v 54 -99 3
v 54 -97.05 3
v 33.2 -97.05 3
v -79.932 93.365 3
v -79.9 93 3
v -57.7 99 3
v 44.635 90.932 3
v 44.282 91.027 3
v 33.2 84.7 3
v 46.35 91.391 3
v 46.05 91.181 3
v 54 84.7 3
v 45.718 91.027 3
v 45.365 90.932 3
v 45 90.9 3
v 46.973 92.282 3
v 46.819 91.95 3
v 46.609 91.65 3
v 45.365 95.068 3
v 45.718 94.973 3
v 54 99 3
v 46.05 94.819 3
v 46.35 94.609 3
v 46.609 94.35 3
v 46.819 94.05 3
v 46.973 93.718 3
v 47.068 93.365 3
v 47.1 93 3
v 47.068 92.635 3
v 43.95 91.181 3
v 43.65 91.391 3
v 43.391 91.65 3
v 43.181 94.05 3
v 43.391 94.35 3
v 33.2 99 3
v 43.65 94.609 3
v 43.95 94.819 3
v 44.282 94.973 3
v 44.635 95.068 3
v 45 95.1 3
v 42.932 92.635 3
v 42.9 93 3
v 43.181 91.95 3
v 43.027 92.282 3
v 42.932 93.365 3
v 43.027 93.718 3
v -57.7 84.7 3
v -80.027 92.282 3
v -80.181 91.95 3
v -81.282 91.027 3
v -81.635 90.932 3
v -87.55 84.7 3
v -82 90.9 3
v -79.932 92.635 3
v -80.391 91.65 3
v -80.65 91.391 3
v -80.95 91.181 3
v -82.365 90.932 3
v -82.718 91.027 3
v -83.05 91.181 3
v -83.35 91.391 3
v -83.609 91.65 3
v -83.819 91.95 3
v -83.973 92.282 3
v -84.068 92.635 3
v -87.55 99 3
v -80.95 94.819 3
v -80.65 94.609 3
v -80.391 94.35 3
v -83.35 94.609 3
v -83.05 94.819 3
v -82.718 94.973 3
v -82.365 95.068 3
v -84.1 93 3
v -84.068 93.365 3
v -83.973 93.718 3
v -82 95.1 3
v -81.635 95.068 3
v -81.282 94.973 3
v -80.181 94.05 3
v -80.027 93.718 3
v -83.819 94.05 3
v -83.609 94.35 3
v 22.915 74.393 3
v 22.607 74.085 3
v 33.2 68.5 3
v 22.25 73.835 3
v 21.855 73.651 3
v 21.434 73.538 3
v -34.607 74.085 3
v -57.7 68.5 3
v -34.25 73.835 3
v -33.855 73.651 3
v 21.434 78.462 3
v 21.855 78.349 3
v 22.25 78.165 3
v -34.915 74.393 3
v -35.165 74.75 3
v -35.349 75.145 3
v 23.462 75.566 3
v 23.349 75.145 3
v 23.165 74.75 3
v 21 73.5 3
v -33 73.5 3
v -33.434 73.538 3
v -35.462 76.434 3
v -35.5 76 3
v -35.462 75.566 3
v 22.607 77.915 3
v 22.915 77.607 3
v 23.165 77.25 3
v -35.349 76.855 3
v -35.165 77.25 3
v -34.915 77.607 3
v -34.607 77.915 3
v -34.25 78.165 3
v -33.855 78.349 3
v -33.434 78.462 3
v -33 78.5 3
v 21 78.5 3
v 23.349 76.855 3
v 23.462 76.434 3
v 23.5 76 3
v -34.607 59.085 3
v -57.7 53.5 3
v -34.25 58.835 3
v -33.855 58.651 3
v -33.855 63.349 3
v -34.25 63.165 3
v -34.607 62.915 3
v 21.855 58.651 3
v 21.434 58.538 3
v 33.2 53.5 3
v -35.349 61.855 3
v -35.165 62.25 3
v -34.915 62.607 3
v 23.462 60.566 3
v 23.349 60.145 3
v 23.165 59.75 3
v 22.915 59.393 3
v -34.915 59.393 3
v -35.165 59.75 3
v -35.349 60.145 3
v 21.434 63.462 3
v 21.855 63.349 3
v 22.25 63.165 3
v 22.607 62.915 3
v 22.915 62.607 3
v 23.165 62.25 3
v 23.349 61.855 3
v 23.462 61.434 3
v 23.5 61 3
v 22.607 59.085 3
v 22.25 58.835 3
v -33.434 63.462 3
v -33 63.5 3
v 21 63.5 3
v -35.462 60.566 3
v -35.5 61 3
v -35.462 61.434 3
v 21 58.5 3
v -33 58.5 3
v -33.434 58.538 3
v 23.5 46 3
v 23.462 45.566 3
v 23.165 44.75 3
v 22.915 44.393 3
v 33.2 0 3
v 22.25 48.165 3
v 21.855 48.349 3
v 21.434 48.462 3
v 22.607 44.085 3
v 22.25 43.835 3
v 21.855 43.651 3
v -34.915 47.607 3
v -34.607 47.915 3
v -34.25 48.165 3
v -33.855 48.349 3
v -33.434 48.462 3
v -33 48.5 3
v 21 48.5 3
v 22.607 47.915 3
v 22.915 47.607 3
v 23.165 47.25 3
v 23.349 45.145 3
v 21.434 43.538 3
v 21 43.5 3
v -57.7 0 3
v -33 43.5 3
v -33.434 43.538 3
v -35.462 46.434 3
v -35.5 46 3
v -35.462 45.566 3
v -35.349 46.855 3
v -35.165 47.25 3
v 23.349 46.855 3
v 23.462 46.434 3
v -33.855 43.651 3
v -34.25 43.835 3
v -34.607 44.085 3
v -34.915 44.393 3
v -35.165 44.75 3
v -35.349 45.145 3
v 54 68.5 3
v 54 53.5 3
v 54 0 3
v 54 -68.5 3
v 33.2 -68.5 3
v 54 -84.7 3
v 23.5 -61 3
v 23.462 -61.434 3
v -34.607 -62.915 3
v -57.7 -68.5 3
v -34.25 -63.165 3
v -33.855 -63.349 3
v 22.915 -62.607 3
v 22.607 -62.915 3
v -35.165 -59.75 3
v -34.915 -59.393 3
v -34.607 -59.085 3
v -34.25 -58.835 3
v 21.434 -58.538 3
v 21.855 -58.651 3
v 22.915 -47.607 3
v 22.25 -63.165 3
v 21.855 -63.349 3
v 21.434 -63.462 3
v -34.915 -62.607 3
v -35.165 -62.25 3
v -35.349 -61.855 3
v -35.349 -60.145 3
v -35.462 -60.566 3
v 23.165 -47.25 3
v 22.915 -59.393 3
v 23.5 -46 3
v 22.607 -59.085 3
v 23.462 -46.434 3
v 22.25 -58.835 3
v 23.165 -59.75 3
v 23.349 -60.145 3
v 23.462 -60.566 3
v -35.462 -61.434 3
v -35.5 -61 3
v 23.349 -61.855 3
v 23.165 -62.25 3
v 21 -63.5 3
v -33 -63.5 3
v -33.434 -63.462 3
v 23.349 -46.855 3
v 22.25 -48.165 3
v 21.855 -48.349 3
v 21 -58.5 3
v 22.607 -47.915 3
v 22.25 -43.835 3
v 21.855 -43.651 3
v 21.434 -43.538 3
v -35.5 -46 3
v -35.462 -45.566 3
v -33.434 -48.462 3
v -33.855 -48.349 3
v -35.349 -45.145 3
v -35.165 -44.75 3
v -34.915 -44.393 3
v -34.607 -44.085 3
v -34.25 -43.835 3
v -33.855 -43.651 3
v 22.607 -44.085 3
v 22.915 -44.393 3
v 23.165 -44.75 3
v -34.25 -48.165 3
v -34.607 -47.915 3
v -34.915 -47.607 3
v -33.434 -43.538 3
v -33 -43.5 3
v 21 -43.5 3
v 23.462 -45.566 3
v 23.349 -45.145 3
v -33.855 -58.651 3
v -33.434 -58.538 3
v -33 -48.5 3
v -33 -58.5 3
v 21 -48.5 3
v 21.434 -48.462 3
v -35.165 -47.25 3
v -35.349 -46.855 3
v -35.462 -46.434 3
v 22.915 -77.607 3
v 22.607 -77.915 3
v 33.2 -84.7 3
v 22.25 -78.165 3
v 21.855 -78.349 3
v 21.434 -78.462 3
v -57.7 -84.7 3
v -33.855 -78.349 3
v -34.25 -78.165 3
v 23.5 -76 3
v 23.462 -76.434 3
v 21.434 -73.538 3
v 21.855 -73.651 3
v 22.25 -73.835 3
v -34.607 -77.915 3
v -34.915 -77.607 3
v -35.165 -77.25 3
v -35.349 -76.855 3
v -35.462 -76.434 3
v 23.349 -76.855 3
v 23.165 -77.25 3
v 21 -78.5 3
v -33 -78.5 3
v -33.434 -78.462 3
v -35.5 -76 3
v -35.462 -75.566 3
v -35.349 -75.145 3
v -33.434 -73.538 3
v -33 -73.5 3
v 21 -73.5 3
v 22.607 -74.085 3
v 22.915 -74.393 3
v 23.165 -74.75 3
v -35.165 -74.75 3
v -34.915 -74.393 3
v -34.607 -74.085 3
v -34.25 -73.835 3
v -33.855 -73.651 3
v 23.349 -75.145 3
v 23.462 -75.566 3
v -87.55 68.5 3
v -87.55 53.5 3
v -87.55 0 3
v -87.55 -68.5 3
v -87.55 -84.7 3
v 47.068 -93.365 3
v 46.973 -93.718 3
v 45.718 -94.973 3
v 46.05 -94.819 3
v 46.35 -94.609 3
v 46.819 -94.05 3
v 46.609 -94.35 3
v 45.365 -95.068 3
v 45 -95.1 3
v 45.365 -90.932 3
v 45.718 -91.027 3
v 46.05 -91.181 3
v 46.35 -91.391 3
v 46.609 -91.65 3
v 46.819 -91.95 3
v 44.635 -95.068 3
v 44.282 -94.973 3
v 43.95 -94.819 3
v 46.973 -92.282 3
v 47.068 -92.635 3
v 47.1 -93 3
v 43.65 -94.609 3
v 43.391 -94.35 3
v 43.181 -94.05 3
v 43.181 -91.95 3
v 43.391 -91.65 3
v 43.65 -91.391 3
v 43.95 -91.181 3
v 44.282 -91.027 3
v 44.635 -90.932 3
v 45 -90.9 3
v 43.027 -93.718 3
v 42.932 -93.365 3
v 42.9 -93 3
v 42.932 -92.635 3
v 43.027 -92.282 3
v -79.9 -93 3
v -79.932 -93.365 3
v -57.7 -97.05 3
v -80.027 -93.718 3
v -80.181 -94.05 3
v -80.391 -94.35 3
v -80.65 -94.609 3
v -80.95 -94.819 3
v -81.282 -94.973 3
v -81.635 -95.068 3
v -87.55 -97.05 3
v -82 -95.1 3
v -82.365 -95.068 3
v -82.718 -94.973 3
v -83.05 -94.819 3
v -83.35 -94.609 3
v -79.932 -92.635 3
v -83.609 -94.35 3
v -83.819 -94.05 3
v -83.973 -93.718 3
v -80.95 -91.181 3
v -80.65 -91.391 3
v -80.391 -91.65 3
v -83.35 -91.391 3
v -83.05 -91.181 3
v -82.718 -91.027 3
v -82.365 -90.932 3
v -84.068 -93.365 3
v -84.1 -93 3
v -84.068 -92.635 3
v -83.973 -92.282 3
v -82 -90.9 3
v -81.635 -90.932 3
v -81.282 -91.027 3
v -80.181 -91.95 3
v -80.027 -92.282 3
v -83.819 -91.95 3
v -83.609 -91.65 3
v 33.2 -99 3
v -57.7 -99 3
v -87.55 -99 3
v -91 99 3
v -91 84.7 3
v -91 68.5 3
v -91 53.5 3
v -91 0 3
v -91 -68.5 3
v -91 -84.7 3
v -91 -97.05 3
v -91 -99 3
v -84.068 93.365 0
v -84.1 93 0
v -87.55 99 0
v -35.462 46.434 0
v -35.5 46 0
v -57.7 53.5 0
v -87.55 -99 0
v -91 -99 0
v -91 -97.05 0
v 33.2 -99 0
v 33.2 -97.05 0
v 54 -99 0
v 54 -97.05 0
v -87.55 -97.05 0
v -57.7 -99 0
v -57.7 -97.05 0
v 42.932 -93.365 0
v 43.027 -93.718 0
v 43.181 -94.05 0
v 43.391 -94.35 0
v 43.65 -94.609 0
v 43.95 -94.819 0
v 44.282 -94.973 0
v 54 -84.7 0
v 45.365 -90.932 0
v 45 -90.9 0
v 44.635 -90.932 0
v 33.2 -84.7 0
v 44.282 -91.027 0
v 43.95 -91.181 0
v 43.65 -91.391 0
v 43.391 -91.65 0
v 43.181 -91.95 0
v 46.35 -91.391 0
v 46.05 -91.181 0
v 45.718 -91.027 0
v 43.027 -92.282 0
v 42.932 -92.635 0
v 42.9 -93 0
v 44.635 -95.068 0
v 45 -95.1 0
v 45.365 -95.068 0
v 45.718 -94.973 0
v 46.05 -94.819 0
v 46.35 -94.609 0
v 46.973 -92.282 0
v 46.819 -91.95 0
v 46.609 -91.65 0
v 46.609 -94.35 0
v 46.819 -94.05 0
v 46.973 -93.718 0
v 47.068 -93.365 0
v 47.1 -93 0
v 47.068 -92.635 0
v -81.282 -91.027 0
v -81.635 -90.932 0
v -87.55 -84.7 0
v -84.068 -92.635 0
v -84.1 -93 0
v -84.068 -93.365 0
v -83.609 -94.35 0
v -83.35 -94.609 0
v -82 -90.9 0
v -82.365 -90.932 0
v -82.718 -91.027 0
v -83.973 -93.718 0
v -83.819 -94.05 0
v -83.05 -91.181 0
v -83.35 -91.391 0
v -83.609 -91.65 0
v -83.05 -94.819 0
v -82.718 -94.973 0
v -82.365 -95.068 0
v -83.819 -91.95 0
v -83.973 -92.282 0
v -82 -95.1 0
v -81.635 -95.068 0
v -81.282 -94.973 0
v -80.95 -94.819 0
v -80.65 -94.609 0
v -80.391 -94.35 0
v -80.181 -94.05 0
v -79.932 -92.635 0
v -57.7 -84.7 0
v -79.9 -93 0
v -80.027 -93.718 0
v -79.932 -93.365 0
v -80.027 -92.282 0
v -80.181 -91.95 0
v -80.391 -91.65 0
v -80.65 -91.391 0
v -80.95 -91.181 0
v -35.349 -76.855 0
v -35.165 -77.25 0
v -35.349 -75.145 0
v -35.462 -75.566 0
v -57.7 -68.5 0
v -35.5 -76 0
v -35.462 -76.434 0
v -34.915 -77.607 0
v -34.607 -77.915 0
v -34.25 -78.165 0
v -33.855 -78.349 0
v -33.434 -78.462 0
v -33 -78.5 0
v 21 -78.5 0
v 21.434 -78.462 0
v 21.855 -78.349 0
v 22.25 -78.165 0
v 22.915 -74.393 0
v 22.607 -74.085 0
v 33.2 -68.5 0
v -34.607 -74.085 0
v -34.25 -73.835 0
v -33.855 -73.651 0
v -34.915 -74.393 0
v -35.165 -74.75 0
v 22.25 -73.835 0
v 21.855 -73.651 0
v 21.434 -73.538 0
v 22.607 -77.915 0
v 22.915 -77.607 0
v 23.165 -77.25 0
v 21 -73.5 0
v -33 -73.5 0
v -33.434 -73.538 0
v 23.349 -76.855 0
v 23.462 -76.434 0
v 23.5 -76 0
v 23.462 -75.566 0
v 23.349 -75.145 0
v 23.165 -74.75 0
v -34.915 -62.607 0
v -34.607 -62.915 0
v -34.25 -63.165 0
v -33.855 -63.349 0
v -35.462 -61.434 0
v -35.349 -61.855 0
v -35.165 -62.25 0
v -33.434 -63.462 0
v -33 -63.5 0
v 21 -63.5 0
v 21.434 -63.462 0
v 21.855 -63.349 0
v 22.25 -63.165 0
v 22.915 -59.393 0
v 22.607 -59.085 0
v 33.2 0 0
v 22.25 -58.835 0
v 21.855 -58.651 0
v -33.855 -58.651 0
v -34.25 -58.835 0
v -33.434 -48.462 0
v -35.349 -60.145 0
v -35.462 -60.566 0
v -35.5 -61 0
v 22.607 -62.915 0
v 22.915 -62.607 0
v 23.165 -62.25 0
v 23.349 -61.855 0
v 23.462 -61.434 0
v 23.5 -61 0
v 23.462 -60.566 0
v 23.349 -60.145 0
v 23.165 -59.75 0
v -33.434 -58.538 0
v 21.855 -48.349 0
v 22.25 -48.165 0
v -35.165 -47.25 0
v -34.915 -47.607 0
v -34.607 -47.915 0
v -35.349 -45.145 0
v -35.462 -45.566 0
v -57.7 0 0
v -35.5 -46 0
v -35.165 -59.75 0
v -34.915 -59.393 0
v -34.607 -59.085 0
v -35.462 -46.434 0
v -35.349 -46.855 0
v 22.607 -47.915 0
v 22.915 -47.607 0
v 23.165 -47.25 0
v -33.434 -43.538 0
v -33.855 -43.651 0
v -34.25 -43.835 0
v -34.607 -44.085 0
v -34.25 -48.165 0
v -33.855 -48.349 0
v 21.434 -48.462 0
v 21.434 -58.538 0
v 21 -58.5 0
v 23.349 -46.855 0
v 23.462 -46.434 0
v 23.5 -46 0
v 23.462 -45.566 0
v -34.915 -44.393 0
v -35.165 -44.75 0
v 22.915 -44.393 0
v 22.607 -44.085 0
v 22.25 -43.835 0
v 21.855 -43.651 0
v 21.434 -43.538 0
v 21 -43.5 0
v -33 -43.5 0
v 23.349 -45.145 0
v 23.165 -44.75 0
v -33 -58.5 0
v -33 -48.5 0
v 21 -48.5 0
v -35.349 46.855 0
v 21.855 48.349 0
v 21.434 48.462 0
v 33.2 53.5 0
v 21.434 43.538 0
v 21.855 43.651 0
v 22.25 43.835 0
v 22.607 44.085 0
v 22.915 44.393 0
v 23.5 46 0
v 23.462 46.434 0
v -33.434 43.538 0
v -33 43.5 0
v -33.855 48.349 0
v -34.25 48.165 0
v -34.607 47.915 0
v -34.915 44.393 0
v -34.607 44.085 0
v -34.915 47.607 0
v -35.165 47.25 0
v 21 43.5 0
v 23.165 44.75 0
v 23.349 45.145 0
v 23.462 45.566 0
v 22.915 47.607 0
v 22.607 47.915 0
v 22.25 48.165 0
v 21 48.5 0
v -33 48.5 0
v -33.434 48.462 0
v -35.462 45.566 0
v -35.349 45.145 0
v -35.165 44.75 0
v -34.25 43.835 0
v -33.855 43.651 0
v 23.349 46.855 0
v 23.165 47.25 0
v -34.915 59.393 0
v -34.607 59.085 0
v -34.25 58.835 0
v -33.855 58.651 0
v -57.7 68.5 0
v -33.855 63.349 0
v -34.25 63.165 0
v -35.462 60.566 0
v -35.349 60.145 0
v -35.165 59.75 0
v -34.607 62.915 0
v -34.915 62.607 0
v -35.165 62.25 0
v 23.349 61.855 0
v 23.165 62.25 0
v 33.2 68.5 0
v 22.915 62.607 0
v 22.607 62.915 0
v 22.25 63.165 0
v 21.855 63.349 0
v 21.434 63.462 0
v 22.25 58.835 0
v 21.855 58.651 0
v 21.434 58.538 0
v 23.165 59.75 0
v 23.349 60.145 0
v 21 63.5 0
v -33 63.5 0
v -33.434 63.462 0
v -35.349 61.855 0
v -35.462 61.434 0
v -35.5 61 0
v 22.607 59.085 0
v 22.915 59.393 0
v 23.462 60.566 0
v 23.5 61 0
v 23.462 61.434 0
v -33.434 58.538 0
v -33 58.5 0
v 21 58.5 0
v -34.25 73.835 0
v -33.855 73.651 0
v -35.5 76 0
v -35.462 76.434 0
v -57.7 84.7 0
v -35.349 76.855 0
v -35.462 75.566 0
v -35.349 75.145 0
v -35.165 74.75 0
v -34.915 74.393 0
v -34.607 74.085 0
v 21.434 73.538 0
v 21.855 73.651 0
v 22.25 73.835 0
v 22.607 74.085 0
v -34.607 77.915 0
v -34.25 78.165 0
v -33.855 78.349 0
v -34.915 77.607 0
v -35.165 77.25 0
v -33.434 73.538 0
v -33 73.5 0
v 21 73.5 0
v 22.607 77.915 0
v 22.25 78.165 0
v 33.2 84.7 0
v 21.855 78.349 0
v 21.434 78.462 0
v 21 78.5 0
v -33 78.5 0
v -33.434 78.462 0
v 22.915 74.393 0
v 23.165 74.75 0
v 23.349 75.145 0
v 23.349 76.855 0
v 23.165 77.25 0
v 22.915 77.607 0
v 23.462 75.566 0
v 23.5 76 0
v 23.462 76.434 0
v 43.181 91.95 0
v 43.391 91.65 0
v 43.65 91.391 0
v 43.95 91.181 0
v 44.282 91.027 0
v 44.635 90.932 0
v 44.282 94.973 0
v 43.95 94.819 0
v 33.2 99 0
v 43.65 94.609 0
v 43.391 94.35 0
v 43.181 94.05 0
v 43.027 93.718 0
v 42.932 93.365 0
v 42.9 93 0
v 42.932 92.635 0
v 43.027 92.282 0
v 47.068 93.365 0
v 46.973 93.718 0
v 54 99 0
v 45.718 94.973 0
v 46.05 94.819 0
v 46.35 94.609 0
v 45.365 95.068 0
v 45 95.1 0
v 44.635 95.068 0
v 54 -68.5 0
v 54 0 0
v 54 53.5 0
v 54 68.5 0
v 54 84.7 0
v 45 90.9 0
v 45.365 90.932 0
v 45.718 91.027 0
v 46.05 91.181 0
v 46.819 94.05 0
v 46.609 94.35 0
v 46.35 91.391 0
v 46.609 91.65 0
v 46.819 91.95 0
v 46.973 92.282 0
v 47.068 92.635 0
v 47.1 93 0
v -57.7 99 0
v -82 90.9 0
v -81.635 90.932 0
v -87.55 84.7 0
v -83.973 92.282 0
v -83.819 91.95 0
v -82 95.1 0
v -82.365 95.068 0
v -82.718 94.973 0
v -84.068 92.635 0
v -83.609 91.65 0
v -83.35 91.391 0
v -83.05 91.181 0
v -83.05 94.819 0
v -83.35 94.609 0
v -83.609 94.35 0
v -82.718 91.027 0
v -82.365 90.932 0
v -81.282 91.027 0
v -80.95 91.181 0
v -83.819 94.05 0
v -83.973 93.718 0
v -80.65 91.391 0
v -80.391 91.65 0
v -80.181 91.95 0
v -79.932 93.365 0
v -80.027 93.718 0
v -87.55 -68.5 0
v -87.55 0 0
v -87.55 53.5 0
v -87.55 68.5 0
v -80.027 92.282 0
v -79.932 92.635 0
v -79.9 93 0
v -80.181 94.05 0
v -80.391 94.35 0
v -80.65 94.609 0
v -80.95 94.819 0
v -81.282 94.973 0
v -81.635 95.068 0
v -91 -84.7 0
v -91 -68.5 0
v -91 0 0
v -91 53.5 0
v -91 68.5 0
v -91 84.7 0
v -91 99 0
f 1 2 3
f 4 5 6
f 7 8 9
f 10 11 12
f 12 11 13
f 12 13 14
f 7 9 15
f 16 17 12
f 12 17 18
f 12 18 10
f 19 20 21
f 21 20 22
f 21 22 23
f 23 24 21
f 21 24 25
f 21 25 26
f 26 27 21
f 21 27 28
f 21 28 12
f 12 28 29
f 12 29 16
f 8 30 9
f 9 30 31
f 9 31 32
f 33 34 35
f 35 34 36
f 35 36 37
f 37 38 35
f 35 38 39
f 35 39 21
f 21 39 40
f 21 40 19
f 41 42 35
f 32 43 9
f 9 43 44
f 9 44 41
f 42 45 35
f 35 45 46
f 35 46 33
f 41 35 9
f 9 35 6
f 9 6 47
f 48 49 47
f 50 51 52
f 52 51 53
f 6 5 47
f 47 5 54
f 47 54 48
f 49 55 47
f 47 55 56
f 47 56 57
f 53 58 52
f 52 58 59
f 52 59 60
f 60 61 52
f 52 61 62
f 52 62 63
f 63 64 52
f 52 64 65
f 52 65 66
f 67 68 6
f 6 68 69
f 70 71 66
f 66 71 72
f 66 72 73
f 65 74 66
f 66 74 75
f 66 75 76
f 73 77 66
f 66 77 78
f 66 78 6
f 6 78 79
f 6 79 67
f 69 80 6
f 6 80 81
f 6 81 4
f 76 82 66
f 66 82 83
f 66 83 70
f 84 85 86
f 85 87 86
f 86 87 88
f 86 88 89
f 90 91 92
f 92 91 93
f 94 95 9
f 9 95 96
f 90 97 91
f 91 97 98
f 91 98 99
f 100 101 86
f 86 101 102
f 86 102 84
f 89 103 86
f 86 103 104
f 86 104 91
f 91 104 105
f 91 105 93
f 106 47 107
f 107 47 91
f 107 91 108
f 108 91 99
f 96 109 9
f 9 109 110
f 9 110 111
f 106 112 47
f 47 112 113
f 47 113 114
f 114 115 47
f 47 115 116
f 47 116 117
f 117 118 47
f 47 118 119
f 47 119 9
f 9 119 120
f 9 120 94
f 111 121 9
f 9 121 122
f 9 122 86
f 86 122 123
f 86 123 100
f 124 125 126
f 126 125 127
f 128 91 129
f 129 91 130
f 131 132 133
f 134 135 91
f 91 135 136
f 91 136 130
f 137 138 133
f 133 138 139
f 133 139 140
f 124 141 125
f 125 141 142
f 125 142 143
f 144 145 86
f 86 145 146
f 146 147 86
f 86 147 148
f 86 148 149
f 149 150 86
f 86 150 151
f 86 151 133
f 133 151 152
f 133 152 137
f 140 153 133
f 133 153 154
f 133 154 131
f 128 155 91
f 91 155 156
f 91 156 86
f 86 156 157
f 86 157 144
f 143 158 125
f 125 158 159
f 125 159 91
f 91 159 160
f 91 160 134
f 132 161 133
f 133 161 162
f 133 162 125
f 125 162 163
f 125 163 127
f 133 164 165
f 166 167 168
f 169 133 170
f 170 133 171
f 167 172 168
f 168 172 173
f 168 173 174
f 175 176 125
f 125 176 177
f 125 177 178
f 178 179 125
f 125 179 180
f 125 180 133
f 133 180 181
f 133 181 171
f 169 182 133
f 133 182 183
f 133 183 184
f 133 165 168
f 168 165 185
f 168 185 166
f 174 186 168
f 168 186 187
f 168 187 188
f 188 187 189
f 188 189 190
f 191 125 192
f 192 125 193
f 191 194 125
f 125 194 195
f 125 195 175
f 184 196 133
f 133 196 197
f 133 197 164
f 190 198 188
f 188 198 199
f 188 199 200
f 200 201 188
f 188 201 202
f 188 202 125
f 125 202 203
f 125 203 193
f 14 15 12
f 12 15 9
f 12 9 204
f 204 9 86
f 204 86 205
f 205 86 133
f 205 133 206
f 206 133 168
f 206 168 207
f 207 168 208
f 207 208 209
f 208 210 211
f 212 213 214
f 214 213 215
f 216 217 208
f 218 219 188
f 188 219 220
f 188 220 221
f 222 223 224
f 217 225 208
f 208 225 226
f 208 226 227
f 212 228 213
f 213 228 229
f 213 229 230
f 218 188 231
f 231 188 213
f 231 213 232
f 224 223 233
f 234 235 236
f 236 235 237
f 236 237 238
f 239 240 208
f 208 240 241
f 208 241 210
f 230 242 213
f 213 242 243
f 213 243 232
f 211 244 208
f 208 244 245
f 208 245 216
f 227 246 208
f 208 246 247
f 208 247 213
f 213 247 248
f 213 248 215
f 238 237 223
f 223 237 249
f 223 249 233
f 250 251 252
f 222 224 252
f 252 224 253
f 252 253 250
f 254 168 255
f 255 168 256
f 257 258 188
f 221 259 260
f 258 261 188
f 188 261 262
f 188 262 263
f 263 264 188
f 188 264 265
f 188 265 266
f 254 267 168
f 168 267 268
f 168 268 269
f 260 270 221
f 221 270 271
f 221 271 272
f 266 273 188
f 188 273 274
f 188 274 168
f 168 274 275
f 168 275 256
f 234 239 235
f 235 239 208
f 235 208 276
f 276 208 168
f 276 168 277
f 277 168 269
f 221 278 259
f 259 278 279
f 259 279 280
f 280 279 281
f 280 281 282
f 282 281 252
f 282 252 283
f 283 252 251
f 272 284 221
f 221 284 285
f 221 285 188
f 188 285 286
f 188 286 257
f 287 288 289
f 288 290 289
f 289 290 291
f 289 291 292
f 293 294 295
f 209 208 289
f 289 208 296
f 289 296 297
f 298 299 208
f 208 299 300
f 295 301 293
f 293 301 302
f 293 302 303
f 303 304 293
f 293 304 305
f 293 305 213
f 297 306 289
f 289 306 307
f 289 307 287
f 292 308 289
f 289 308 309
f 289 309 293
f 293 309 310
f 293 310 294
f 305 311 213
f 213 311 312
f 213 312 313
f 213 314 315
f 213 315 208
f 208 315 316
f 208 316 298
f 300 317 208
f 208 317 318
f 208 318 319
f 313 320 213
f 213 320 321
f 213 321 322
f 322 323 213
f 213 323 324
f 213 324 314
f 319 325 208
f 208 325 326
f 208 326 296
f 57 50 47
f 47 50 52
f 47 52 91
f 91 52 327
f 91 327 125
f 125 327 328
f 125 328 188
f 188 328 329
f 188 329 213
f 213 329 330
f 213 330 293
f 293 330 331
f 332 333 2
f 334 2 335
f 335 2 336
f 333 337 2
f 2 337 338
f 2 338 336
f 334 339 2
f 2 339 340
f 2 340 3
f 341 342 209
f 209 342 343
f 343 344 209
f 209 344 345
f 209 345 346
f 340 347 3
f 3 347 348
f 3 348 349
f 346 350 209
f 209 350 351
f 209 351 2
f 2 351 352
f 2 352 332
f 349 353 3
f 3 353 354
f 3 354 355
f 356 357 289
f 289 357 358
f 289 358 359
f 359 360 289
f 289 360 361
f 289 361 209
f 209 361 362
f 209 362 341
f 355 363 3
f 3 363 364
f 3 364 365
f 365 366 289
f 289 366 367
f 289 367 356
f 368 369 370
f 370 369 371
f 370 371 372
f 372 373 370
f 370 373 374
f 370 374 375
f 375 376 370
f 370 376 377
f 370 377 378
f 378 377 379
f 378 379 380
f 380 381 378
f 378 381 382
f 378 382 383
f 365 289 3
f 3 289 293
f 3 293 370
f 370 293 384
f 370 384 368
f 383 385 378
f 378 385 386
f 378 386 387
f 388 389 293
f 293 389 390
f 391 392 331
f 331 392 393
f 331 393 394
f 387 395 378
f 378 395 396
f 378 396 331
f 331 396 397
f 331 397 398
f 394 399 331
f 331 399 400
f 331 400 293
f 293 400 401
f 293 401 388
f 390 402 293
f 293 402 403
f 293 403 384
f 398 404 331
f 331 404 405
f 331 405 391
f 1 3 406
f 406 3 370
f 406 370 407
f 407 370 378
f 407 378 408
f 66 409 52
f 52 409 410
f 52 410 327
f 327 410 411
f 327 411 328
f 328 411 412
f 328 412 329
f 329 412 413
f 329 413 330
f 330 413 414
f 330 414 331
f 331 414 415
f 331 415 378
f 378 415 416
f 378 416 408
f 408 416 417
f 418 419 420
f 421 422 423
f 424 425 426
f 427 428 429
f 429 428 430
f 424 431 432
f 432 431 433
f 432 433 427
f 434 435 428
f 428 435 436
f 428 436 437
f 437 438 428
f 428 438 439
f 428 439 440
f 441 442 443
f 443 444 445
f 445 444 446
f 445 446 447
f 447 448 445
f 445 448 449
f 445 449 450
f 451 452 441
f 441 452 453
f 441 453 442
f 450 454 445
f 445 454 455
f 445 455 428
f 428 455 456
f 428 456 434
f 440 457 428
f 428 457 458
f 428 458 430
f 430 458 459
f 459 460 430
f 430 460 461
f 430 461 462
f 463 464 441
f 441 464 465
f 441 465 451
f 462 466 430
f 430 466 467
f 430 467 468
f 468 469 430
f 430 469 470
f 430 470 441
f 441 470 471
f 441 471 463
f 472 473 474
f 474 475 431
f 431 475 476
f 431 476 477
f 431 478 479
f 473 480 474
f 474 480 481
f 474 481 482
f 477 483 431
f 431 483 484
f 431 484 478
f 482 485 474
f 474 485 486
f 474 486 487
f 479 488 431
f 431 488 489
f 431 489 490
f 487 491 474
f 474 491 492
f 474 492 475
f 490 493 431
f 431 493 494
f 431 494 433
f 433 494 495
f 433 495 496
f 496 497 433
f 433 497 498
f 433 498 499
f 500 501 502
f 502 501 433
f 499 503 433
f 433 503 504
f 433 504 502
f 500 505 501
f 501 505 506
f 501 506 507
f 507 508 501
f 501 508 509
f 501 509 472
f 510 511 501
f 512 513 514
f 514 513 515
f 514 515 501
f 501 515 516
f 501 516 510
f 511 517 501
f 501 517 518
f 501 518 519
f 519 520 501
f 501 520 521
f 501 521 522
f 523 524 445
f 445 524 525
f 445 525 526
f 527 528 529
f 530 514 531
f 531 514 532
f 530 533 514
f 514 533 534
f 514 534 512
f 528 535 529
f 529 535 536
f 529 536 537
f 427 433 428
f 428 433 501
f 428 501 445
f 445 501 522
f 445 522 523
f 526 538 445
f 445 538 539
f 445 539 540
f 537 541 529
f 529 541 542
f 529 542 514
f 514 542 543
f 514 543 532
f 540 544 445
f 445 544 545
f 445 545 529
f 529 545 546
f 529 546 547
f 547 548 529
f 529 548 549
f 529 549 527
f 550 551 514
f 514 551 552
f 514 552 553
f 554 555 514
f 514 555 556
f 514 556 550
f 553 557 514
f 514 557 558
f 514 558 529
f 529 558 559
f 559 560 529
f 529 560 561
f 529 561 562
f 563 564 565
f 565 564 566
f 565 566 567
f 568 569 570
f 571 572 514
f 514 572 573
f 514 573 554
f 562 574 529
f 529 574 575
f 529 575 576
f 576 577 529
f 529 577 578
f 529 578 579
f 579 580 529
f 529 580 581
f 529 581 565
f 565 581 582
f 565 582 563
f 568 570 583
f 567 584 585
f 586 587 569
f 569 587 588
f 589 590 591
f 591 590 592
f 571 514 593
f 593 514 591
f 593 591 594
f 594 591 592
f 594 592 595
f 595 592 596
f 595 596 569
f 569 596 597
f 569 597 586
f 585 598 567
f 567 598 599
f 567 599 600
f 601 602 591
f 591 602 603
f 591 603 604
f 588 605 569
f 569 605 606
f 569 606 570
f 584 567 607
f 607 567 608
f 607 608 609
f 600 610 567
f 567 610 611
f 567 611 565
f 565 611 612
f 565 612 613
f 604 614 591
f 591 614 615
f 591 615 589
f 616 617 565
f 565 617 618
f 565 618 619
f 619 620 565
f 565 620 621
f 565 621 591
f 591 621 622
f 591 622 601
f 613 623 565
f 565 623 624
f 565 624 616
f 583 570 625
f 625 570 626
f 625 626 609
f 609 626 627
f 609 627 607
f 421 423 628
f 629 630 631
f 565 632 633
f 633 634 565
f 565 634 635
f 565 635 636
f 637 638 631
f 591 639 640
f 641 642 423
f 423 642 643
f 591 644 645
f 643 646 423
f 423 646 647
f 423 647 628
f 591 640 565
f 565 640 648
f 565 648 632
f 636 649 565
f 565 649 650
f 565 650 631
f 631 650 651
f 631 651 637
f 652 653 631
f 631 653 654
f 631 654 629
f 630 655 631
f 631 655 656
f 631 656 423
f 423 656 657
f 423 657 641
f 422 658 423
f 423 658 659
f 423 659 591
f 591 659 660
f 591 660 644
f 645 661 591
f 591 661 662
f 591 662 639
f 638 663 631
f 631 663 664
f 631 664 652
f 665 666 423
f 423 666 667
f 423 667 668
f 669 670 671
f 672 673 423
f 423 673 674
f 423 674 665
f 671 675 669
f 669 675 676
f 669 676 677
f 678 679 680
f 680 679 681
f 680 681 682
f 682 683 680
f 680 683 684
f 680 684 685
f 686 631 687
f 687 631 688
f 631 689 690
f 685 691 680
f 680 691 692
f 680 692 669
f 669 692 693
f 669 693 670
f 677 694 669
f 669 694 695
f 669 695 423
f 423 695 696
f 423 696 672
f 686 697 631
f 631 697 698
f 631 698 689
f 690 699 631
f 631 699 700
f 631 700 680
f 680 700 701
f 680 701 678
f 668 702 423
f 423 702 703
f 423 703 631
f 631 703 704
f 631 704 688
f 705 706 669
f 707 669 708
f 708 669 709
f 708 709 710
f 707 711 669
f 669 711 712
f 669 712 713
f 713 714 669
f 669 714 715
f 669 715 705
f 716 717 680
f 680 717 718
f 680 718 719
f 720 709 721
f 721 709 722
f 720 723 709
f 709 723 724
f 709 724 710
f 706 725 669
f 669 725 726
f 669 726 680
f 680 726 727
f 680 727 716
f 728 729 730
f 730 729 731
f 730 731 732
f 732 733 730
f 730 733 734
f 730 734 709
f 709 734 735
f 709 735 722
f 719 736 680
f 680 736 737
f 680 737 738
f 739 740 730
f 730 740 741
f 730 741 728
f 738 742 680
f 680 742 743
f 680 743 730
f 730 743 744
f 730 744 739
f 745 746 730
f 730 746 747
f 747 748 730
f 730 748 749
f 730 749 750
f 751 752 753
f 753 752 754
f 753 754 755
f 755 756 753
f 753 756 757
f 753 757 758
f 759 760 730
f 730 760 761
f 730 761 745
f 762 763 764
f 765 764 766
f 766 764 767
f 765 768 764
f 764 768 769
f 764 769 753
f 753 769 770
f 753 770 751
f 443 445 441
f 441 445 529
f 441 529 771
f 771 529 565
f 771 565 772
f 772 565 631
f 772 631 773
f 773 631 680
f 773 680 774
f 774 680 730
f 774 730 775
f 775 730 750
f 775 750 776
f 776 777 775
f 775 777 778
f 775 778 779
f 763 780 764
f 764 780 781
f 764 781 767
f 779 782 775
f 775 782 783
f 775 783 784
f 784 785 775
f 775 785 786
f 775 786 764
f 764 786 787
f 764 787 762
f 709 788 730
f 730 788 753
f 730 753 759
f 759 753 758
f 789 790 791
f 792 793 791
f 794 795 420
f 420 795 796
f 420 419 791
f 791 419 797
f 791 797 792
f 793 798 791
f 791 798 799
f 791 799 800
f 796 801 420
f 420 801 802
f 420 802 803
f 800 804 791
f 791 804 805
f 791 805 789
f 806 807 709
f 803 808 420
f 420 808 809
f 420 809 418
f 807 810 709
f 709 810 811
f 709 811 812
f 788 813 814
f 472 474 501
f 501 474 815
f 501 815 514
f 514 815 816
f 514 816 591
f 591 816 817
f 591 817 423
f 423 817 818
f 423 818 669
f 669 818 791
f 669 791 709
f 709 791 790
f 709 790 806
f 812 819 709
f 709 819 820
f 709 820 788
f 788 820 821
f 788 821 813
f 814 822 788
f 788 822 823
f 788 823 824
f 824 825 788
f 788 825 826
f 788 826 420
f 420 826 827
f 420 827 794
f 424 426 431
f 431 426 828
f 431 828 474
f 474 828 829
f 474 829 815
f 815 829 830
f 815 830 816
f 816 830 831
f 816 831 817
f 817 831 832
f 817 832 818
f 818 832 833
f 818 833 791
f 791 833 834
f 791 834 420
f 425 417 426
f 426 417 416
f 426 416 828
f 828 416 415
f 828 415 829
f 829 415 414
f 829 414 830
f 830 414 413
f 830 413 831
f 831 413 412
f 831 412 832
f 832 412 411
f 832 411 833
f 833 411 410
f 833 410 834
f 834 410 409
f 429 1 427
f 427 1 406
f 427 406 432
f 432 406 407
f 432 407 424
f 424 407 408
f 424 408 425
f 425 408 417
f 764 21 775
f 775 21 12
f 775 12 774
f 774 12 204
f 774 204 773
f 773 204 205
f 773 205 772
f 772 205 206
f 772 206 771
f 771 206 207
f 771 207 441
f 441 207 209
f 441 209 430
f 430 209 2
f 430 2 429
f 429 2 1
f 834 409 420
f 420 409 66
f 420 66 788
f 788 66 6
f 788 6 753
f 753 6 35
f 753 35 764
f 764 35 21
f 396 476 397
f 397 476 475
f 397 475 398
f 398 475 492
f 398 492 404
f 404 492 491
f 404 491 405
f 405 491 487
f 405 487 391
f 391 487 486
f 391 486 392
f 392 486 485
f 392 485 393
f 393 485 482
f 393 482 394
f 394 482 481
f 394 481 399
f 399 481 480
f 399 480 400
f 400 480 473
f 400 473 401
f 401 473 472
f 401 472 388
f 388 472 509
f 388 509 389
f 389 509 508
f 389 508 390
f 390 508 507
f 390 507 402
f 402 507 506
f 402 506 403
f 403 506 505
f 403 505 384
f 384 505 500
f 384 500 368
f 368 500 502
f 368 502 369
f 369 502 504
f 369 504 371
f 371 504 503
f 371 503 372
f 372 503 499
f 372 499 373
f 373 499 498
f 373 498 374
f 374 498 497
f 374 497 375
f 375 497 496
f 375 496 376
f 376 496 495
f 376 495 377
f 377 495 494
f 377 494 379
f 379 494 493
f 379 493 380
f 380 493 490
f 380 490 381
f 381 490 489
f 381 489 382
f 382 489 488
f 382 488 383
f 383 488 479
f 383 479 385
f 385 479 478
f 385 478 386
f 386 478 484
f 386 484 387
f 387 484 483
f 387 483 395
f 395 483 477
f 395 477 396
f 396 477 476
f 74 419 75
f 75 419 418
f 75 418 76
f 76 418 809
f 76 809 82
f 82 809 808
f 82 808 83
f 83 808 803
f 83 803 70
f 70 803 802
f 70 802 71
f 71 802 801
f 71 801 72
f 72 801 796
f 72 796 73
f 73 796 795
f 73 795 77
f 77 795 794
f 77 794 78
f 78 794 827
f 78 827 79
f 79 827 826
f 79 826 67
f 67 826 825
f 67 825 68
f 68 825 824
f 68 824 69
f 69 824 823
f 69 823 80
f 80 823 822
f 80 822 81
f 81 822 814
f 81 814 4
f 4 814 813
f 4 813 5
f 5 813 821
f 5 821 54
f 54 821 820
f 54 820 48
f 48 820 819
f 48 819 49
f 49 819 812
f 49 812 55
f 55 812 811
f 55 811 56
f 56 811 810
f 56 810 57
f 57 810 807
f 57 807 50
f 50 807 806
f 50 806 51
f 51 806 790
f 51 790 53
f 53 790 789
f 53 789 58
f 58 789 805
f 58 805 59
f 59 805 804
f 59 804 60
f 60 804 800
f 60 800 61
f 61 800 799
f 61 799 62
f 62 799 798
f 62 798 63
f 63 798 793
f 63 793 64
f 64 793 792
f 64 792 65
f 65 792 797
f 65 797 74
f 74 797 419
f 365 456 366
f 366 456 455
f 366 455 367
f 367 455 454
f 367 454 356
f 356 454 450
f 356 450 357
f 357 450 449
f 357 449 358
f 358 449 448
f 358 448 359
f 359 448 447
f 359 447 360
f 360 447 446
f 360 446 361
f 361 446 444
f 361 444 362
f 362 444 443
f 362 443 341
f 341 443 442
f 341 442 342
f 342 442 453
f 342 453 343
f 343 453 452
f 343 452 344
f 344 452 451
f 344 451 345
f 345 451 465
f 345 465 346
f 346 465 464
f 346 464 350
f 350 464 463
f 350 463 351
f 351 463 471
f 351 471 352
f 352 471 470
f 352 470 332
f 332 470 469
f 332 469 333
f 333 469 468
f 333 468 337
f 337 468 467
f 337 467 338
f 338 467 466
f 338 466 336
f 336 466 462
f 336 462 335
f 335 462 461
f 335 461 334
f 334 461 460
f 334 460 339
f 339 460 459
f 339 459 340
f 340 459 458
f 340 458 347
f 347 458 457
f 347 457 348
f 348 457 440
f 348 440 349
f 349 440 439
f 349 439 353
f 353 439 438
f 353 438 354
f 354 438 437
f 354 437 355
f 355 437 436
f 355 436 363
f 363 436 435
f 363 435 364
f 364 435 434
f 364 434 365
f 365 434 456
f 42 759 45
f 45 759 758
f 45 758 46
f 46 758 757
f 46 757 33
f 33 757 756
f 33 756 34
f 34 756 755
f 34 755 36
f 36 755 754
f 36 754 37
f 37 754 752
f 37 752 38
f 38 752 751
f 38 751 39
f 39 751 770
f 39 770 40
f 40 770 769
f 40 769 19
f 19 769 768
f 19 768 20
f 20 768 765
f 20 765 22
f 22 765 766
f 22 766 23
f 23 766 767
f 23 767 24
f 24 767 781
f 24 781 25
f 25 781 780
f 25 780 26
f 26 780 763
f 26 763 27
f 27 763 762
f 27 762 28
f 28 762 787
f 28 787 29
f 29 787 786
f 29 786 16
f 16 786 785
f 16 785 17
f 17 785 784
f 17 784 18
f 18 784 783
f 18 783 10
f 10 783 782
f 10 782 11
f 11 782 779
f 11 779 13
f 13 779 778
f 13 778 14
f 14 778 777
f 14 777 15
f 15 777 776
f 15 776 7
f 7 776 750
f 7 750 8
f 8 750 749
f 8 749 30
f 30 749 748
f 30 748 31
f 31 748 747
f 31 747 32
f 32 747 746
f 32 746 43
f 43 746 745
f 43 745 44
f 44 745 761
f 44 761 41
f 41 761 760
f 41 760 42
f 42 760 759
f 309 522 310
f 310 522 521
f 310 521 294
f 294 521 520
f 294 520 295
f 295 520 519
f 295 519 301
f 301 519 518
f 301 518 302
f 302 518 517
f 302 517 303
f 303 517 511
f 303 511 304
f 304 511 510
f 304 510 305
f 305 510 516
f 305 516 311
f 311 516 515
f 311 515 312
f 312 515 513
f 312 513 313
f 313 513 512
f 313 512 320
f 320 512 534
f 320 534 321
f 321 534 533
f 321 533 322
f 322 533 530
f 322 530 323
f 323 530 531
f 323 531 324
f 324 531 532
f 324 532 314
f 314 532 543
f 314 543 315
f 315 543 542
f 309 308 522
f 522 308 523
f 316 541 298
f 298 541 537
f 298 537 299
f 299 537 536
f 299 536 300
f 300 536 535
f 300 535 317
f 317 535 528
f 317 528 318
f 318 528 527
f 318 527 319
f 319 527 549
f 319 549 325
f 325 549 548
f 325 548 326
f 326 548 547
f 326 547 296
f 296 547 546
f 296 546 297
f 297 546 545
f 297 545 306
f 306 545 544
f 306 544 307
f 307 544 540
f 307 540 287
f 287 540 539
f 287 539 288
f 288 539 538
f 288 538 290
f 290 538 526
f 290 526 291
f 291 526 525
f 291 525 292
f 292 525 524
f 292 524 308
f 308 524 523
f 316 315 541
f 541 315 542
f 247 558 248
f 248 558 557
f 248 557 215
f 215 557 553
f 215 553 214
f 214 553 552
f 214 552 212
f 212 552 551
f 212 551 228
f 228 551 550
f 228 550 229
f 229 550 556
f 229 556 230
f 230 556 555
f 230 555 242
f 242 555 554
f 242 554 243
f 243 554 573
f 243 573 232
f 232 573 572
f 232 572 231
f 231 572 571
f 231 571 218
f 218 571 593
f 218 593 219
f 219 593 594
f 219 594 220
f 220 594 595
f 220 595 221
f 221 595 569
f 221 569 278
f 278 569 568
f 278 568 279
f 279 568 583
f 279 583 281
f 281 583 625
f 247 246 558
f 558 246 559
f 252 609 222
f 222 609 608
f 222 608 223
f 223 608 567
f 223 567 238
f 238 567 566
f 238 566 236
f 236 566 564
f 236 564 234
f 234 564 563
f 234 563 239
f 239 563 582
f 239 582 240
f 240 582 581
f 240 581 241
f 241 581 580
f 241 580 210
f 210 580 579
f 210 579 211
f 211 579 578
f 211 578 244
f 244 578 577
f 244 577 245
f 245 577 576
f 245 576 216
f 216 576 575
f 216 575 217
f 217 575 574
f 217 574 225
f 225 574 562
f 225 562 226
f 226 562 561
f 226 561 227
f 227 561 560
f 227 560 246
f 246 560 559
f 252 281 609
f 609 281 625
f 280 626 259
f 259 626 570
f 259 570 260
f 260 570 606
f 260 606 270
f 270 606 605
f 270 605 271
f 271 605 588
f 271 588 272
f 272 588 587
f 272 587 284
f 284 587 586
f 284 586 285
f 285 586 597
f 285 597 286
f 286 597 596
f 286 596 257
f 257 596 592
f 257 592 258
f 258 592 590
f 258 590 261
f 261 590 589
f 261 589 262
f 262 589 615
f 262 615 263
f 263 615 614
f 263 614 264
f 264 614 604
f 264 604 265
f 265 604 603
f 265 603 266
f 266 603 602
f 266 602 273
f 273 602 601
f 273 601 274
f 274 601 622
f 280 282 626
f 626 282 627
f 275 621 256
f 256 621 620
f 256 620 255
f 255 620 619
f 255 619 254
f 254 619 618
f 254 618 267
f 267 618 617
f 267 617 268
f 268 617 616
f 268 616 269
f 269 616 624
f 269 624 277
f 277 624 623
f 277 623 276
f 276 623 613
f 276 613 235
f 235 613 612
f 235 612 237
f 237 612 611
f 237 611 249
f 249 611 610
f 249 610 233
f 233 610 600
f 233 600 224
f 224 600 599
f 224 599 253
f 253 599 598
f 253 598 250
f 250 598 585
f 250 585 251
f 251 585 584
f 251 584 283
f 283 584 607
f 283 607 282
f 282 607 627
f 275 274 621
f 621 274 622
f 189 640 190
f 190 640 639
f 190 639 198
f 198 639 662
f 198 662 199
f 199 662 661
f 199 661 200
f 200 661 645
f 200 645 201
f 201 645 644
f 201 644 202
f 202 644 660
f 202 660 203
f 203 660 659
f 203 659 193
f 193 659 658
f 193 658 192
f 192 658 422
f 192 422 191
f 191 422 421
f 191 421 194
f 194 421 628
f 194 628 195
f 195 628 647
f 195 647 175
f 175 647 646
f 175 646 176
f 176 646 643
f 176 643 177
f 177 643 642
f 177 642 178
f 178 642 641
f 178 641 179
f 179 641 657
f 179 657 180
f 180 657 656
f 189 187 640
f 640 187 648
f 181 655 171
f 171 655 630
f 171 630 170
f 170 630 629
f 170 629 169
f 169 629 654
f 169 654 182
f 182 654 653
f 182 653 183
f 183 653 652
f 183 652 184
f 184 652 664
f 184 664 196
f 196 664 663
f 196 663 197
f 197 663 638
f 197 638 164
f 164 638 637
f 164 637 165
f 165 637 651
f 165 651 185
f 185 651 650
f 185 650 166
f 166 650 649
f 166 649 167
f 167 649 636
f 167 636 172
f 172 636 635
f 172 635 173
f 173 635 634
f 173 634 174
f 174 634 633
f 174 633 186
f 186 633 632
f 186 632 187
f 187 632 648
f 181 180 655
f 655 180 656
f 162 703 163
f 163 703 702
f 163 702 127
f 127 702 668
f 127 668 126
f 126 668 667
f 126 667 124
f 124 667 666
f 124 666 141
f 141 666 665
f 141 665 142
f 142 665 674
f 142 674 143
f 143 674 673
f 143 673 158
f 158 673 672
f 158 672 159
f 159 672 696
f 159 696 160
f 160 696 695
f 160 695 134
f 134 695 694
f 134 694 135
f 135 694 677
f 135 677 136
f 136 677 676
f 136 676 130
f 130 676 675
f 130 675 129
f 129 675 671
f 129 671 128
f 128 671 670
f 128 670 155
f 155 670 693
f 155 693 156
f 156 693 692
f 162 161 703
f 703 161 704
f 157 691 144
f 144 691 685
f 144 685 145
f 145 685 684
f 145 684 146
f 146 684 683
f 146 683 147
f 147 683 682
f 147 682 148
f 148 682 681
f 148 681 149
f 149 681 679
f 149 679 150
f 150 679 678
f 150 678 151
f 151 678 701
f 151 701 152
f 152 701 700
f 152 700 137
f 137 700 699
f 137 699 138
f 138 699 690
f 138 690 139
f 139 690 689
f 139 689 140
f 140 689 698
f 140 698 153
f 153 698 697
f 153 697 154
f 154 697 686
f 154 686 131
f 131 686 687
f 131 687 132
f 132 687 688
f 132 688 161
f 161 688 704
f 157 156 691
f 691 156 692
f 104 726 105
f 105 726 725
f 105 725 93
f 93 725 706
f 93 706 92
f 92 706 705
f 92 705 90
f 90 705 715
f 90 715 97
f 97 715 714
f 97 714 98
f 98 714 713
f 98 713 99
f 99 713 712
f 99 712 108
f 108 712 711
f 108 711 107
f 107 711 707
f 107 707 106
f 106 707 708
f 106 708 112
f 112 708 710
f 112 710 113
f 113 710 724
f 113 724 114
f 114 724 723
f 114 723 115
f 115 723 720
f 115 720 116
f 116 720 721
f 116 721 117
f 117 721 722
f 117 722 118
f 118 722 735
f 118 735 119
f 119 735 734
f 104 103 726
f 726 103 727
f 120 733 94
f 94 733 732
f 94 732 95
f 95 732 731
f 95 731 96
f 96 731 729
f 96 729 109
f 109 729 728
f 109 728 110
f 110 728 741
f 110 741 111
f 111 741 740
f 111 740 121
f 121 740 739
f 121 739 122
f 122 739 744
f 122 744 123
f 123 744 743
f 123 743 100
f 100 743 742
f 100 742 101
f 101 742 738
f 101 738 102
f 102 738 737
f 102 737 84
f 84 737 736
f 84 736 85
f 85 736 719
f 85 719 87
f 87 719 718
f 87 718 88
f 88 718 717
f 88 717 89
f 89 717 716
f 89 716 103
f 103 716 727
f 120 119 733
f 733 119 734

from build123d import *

# Parameters (mm, degrees)
SERVICE_LID_VENTS_PROFILE_W = 145
SERVICE_LID_VENTS_PROFILE_H = 198
SERVICE_LID_VENTS_PROFILE_R = 2.1
SERVICE_LID_VENTS_DEPTH     = 3


with BuildPart() as part:
    # Service lid vents profile → Service lid vents (new body)
    with BuildSketch(Plane.XY):
        with Locations((-18.5, 0)):
            Rectangle(SERVICE_LID_VENTS_PROFILE_W, SERVICE_LID_VENTS_PROFILE_H)
        with Locations((-82, -93)):
            Circle(SERVICE_LID_VENTS_PROFILE_R, mode=Mode.SUBTRACT)
        with Locations((-82, 93)):
            Circle(SERVICE_LID_VENTS_PROFILE_R, mode=Mode.SUBTRACT)
        with Locations((45, -93)):
            Circle(SERVICE_LID_VENTS_PROFILE_R, mode=Mode.SUBTRACT)
        with Locations((45, 93)):
            Circle(SERVICE_LID_VENTS_PROFILE_R, mode=Mode.SUBTRACT)
        with BuildLine():
            Line((-33, -78.5), (21, -78.5))
            ThreePointArc((21, -78.5), (23.5, -76), (21, -73.5))
            Line((21, -73.5), (-33, -73.5))
            ThreePointArc((-33, -73.5), (-35.5, -76), (-33, -78.5))
        make_face(mode=Mode.SUBTRACT)
        with BuildLine():
            Line((-33, -63.5), (21, -63.5))
            ThreePointArc((21, -63.5), (23.5, -61), (21, -58.5))
            Line((21, -58.5), (-33, -58.5))
            ThreePointArc((-33, -58.5), (-35.5, -61), (-33, -63.5))
        make_face(mode=Mode.SUBTRACT)
        with BuildLine():
            Line((-33, -48.5), (21, -48.5))
            ThreePointArc((21, -48.5), (23.5, -46), (21, -43.5))
            Line((21, -43.5), (-33, -43.5))
            ThreePointArc((-33, -43.5), (-35.5, -46), (-33, -48.5))
        make_face(mode=Mode.SUBTRACT)
        with BuildLine():
            Line((-33, 43.5), (21, 43.5))
            ThreePointArc((21, 43.5), (23.5, 46), (21, 48.5))
            Line((21, 48.5), (-33, 48.5))
            ThreePointArc((-33, 48.5), (-35.5, 46), (-33, 43.5))
        make_face(mode=Mode.SUBTRACT)
        with BuildLine():
            Line((-33, 58.5), (21, 58.5))
            ThreePointArc((21, 58.5), (23.5, 61), (21, 63.5))
            Line((21, 63.5), (-33, 63.5))
            ThreePointArc((-33, 63.5), (-35.5, 61), (-33, 58.5))
        make_face(mode=Mode.SUBTRACT)
        with BuildLine():
            Line((-33, 73.5), (21, 73.5))
            ThreePointArc((21, 73.5), (23.5, 76), (21, 78.5))
            Line((21, 78.5), (-33, 78.5))
            ThreePointArc((-33, 78.5), (-35.5, 76), (-33, 73.5))
        make_face(mode=Mode.SUBTRACT)
    extrude(amount=SERVICE_LID_VENTS_DEPTH)


solid = part.part
